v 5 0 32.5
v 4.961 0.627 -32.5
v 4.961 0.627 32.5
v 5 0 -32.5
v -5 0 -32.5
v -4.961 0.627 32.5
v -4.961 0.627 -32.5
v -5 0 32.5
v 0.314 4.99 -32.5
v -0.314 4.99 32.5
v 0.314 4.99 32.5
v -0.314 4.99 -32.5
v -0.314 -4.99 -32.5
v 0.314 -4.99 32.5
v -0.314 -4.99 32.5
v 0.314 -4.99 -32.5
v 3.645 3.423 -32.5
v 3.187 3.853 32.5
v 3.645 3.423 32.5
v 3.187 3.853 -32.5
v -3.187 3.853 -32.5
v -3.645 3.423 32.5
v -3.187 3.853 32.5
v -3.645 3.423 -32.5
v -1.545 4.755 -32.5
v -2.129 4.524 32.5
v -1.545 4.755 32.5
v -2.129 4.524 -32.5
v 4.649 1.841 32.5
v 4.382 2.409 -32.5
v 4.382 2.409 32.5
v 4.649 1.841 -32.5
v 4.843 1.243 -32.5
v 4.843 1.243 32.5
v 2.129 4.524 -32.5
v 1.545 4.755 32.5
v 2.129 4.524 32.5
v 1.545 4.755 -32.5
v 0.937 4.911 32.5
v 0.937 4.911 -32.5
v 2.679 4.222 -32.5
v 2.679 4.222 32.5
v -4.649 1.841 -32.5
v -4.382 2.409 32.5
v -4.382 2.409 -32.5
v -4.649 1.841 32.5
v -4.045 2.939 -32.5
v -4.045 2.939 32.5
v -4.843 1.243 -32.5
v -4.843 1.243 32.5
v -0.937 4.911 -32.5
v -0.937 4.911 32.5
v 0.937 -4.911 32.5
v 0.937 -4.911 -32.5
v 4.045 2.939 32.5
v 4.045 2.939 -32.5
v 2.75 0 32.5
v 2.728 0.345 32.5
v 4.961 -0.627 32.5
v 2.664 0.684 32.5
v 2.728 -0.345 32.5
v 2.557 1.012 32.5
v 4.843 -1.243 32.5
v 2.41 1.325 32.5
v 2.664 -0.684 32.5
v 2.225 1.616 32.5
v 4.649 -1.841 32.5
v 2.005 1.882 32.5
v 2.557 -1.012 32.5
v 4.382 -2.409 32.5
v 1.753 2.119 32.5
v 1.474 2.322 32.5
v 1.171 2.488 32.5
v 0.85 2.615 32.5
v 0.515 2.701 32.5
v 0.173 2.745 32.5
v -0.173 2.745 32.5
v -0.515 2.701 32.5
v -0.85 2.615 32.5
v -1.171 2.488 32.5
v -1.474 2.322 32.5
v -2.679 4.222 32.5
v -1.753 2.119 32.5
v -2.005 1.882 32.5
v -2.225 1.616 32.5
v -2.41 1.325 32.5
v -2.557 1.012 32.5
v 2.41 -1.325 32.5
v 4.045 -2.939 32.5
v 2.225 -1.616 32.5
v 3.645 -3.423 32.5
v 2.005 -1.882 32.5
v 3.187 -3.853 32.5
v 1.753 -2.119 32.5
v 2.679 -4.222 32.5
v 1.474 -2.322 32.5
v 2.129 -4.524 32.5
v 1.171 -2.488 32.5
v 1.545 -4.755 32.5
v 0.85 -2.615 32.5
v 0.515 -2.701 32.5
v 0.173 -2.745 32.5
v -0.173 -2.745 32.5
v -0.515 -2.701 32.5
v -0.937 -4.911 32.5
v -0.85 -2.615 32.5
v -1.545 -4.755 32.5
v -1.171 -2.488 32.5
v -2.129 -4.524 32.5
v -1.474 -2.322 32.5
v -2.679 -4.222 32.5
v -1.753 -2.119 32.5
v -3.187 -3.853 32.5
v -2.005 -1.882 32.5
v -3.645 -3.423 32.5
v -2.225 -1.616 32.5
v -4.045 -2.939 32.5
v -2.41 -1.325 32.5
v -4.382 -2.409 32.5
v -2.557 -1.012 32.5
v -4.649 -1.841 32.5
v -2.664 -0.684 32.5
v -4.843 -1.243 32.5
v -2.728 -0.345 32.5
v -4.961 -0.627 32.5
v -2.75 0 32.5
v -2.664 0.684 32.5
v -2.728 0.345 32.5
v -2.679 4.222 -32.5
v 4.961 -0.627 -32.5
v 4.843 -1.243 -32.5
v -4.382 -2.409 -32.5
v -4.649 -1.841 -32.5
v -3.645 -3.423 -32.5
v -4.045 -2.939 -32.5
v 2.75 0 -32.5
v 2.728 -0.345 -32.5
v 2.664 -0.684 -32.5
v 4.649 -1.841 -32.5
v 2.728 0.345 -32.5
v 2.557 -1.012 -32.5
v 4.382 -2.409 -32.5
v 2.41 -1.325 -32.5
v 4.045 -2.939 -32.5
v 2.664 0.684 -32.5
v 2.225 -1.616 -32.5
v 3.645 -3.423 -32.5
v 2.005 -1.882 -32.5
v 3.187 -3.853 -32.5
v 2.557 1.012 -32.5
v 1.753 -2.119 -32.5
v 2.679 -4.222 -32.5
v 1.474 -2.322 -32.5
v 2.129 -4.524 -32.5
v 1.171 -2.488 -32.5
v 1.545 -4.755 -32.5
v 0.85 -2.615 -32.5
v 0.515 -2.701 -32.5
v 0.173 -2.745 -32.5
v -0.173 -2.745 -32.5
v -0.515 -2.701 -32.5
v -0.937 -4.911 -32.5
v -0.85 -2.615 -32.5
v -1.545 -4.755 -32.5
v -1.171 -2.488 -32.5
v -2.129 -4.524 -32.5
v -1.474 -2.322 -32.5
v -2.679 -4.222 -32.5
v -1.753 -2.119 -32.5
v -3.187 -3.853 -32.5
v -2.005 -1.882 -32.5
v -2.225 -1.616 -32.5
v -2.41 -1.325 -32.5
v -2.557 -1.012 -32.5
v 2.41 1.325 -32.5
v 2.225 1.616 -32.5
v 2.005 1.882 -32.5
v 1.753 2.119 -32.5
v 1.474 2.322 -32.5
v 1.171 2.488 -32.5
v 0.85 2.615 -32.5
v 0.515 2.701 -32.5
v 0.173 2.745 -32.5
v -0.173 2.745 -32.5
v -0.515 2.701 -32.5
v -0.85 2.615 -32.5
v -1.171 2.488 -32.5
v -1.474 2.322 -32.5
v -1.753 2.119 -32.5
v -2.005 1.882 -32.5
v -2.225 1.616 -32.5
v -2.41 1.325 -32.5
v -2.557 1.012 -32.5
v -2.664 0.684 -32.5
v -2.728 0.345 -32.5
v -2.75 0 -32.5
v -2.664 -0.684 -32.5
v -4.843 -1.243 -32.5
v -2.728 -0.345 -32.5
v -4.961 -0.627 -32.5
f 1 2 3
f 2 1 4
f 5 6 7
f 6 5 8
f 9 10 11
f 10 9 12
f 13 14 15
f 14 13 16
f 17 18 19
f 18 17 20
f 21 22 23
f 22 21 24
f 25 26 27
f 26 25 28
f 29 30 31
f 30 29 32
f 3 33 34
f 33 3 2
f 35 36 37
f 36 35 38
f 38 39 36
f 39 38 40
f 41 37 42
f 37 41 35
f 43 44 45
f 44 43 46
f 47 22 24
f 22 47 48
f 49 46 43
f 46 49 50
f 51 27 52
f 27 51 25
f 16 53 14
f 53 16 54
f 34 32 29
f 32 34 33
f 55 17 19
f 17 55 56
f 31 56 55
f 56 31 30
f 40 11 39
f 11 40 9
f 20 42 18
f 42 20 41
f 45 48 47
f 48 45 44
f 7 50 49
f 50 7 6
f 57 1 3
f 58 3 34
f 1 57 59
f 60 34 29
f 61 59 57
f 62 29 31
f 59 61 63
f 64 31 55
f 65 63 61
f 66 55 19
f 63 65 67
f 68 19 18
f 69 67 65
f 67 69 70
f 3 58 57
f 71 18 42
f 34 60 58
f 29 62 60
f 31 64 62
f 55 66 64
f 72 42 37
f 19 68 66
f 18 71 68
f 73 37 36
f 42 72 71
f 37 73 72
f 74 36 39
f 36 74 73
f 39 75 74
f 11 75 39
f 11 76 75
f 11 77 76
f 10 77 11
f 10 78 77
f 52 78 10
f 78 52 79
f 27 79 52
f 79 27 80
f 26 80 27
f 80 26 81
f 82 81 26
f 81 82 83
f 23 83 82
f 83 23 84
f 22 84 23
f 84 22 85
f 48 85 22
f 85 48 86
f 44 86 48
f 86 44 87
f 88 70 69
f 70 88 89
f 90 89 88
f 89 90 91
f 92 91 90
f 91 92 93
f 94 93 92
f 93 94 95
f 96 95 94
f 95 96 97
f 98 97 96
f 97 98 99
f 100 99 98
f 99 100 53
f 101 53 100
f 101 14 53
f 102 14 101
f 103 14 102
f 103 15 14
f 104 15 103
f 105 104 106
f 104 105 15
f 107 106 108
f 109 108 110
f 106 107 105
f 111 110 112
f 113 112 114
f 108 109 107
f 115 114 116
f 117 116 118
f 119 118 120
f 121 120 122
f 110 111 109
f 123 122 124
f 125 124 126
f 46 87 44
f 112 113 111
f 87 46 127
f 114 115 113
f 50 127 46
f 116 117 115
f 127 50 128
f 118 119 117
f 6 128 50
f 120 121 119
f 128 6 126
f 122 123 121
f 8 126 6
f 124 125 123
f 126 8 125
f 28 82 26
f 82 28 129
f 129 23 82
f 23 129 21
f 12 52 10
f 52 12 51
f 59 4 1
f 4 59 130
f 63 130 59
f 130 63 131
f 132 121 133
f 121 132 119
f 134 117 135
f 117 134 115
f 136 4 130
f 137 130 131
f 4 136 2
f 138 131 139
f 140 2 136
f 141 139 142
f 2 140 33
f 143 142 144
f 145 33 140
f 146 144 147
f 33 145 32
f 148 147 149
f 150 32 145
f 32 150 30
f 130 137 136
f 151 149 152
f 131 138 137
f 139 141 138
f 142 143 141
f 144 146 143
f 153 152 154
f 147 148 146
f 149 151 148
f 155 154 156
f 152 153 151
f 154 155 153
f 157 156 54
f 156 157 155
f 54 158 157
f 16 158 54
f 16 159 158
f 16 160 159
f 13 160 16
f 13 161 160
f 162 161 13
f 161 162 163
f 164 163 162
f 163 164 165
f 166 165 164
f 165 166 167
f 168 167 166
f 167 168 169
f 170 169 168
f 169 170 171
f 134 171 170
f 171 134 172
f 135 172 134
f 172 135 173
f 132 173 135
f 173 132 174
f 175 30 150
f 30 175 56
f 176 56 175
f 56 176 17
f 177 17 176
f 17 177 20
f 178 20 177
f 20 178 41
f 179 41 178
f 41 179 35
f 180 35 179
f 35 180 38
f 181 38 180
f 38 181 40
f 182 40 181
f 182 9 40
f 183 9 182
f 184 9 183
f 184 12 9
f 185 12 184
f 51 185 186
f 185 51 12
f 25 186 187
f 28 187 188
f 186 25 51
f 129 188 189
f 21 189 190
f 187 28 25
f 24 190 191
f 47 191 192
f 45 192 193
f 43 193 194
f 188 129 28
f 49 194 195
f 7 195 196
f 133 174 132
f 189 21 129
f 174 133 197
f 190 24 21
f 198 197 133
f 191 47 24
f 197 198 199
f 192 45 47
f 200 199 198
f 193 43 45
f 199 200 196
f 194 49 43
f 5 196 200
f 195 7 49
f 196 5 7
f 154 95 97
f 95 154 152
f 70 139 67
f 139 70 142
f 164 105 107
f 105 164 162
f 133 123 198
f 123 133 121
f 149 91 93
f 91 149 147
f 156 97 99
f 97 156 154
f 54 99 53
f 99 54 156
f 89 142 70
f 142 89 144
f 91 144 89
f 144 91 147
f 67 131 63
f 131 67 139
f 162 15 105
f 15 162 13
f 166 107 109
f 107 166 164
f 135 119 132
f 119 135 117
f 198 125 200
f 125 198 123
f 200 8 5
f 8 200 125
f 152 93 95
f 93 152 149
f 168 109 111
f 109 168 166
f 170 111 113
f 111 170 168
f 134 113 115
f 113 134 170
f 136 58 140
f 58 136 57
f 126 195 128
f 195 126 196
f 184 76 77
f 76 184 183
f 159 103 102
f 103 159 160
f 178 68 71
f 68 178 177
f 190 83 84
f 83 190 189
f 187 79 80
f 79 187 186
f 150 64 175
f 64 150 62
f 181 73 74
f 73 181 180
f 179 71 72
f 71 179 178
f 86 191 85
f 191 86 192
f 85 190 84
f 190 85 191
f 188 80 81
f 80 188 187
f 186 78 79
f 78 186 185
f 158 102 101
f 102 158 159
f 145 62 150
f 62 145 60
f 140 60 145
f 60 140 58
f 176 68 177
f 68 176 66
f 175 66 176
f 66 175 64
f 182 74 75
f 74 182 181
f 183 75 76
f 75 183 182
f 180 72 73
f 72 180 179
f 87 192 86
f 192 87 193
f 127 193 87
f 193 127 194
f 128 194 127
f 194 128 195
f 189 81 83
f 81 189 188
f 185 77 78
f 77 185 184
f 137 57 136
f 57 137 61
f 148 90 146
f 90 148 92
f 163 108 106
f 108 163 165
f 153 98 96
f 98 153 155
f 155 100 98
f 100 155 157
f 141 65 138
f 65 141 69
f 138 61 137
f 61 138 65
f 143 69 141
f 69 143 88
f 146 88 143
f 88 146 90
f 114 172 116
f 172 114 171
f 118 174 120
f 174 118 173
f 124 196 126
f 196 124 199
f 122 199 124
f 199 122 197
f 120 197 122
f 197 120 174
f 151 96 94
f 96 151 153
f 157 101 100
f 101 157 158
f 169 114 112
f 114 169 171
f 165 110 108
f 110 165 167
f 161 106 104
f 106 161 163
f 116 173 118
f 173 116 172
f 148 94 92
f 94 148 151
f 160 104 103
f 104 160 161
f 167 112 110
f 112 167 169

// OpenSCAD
$fn = 50;


difference() {
	union() {
		translate(v = [0, 0, -32.5000000000]) {
			cylinder(h = 65, r = 5.0000000000);
		}
	}
	union() {
		translate(v = [0, 0, -100.0000000000]) {
			cylinder(h = 200, r = 2.7500000000);
		}
	}
}
